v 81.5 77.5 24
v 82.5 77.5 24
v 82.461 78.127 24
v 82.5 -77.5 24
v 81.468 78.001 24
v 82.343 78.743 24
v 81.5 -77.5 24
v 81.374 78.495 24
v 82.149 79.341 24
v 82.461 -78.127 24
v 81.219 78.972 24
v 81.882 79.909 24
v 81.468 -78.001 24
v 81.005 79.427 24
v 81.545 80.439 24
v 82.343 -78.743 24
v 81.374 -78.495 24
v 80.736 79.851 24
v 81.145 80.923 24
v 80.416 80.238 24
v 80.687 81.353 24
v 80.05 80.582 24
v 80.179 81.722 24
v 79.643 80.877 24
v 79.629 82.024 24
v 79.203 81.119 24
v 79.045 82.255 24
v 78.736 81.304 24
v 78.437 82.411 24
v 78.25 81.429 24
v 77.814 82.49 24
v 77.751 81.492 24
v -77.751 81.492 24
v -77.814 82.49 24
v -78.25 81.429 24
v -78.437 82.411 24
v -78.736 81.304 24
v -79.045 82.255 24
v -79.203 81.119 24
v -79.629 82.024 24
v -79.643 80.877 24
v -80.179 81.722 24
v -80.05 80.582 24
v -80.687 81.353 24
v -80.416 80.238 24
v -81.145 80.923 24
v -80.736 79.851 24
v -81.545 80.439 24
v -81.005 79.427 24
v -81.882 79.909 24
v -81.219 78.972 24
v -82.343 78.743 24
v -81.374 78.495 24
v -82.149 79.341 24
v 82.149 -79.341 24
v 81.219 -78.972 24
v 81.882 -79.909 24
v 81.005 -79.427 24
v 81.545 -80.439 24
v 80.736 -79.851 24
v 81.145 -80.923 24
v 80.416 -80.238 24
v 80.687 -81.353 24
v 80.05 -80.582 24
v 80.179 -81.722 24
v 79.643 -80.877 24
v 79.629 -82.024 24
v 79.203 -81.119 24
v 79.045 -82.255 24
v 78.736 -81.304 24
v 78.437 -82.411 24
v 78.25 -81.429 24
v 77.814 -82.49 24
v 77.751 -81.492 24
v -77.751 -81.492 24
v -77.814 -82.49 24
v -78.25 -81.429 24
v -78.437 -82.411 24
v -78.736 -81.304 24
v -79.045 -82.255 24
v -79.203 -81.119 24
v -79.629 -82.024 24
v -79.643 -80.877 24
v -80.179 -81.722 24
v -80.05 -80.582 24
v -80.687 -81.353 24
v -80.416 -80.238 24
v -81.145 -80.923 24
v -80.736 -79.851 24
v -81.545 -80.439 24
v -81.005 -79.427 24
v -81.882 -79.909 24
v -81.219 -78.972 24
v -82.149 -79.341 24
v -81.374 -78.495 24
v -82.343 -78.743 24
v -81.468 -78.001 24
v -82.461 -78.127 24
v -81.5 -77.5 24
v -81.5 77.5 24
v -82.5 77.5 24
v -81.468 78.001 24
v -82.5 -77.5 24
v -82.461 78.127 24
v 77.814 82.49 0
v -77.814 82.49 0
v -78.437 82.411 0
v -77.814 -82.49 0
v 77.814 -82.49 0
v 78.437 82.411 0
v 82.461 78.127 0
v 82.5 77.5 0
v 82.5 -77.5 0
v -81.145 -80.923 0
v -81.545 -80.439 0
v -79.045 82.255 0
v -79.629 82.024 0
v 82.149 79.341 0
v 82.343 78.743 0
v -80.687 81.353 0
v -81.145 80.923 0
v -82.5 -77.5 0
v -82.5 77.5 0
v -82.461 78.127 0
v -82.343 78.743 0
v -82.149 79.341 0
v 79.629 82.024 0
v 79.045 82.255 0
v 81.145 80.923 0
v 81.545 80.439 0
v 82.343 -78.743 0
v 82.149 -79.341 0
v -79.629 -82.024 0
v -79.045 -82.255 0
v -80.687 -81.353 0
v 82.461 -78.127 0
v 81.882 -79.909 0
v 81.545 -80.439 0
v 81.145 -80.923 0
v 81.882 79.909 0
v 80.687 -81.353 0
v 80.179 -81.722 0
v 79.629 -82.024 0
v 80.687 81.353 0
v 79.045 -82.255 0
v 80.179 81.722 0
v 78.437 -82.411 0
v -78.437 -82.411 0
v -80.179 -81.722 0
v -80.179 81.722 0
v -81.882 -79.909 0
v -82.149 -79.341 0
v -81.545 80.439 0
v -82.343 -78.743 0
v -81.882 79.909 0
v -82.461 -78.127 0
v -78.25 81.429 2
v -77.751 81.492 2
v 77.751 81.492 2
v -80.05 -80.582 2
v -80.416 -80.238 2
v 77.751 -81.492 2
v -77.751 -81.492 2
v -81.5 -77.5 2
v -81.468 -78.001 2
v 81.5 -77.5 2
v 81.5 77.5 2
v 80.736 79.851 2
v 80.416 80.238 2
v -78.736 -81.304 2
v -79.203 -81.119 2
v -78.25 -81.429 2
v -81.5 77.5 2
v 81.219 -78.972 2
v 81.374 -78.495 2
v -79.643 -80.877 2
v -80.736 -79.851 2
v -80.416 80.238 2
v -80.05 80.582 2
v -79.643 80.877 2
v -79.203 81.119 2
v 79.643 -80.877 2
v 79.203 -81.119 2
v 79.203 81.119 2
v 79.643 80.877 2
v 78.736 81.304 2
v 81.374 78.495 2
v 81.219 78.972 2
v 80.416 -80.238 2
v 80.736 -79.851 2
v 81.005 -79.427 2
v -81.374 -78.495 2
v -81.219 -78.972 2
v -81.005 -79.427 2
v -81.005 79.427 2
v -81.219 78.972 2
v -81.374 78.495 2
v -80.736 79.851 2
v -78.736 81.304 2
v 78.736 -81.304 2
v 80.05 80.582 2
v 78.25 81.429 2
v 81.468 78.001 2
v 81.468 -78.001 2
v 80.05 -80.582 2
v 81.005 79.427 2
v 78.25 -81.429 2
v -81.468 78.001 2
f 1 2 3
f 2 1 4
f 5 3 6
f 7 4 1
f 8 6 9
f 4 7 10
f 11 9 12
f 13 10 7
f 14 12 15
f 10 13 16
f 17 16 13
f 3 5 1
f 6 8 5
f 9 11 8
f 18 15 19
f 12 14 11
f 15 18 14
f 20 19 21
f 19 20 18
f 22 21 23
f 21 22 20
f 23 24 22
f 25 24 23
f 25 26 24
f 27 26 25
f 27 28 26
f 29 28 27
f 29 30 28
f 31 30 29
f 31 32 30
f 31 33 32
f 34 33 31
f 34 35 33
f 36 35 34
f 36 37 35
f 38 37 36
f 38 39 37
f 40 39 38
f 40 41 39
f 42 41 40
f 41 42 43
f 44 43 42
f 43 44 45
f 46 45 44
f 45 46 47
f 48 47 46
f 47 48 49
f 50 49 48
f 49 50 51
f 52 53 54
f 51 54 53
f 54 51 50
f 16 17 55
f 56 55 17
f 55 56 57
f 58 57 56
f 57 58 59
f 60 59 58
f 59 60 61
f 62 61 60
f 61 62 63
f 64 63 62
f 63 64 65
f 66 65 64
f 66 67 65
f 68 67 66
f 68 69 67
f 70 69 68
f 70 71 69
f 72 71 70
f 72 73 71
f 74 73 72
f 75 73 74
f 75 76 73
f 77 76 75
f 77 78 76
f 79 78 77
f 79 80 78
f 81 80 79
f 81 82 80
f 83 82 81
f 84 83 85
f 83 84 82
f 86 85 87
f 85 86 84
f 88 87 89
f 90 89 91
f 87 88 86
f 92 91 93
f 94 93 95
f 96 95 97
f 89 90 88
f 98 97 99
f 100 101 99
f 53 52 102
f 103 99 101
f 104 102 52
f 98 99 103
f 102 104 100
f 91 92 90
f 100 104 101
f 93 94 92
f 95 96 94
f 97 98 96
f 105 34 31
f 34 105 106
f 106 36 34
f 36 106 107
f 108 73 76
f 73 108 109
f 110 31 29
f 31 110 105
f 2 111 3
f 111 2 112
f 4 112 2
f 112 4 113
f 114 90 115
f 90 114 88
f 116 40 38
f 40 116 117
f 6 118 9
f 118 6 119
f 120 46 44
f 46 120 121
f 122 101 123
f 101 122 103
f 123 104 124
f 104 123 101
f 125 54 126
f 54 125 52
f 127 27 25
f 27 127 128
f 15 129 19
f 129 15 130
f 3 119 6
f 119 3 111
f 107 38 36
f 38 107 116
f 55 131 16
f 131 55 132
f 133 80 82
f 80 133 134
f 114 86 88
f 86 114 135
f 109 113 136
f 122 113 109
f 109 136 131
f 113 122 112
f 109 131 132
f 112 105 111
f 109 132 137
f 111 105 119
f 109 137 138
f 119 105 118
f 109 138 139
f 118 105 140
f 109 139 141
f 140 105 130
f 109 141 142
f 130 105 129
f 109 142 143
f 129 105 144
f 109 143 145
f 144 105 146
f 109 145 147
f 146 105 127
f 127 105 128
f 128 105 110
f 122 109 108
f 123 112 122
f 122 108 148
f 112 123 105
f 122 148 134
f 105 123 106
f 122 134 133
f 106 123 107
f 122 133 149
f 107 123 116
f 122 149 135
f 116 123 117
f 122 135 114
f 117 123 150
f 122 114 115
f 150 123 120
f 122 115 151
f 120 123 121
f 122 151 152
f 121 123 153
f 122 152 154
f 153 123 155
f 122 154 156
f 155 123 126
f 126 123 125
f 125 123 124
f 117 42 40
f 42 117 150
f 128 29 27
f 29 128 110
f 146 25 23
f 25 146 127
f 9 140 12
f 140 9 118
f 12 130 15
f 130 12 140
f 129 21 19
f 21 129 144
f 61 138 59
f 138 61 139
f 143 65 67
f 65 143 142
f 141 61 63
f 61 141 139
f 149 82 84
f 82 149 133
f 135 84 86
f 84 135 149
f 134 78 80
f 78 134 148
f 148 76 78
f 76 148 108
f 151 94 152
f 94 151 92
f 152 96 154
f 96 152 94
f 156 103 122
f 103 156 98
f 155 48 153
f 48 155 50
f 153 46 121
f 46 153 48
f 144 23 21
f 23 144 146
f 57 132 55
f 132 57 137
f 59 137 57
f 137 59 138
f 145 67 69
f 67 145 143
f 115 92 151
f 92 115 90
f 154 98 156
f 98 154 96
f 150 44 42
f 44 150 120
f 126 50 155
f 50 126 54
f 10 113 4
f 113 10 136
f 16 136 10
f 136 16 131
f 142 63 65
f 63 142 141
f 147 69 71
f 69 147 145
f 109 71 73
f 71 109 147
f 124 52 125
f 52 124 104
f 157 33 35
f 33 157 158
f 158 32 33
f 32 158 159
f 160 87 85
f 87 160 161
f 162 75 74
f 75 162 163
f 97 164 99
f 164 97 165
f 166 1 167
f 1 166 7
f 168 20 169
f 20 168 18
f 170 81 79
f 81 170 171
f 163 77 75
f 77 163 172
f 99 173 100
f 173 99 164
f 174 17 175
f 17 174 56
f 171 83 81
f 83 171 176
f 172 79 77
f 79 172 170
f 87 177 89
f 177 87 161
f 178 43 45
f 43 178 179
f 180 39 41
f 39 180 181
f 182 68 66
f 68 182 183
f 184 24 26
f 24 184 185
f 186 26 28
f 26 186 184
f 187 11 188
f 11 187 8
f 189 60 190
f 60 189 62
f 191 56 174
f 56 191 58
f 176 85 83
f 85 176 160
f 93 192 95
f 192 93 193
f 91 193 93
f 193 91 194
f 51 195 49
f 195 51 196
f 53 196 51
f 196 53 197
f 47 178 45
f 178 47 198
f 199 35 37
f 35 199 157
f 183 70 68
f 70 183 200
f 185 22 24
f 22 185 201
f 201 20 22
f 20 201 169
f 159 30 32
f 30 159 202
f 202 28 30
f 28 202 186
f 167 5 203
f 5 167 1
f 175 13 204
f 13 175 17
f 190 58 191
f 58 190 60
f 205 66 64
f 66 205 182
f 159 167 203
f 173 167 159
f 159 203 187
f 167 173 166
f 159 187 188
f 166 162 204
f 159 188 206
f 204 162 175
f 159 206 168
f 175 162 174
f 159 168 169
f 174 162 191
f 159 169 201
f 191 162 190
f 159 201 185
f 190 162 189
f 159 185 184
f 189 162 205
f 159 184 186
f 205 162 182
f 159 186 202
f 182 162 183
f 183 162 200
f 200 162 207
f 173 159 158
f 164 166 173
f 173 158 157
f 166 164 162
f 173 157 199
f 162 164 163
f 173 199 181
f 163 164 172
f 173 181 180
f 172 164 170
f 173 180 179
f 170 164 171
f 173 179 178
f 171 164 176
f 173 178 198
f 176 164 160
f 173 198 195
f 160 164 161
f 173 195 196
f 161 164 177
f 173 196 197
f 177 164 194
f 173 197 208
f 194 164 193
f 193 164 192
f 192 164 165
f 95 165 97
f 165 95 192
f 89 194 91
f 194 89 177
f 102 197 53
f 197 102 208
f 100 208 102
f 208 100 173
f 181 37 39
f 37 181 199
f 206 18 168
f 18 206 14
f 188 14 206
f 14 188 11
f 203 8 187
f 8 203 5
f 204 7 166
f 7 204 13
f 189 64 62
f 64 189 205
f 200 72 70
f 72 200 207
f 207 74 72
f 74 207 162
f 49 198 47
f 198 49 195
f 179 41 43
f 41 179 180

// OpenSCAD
$fn = 50;


difference() {
	union() {
		hull() {
			translate(v = [-77.5000000000, 77.5000000000, 0]) {
				cylinder(h = 24, r = 5);
			}
			translate(v = [77.5000000000, 77.5000000000, 0]) {
				cylinder(h = 24, r = 5);
			}
			translate(v = [-77.5000000000, -77.5000000000, 0]) {
				cylinder(h = 24, r = 5);
			}
			translate(v = [77.5000000000, -77.5000000000, 0]) {
				cylinder(h = 24, r = 5);
			}
		}
	}
	union() {
		translate(v = [0, 0, 2]) {
			hull() {
				translate(v = [-77.5000000000, 77.5000000000, 0]) {
					cylinder(h = 22, r = 4);
				}
				translate(v = [77.5000000000, 77.5000000000, 0]) {
					cylinder(h = 22, r = 4);
				}
				translate(v = [-77.5000000000, -77.5000000000, 0]) {
					cylinder(h = 22, r = 4);
				}
				translate(v = [77.5000000000, -77.5000000000, 0]) {
					cylinder(h = 22, r = 4);
				}
			}
		}
	}
}
